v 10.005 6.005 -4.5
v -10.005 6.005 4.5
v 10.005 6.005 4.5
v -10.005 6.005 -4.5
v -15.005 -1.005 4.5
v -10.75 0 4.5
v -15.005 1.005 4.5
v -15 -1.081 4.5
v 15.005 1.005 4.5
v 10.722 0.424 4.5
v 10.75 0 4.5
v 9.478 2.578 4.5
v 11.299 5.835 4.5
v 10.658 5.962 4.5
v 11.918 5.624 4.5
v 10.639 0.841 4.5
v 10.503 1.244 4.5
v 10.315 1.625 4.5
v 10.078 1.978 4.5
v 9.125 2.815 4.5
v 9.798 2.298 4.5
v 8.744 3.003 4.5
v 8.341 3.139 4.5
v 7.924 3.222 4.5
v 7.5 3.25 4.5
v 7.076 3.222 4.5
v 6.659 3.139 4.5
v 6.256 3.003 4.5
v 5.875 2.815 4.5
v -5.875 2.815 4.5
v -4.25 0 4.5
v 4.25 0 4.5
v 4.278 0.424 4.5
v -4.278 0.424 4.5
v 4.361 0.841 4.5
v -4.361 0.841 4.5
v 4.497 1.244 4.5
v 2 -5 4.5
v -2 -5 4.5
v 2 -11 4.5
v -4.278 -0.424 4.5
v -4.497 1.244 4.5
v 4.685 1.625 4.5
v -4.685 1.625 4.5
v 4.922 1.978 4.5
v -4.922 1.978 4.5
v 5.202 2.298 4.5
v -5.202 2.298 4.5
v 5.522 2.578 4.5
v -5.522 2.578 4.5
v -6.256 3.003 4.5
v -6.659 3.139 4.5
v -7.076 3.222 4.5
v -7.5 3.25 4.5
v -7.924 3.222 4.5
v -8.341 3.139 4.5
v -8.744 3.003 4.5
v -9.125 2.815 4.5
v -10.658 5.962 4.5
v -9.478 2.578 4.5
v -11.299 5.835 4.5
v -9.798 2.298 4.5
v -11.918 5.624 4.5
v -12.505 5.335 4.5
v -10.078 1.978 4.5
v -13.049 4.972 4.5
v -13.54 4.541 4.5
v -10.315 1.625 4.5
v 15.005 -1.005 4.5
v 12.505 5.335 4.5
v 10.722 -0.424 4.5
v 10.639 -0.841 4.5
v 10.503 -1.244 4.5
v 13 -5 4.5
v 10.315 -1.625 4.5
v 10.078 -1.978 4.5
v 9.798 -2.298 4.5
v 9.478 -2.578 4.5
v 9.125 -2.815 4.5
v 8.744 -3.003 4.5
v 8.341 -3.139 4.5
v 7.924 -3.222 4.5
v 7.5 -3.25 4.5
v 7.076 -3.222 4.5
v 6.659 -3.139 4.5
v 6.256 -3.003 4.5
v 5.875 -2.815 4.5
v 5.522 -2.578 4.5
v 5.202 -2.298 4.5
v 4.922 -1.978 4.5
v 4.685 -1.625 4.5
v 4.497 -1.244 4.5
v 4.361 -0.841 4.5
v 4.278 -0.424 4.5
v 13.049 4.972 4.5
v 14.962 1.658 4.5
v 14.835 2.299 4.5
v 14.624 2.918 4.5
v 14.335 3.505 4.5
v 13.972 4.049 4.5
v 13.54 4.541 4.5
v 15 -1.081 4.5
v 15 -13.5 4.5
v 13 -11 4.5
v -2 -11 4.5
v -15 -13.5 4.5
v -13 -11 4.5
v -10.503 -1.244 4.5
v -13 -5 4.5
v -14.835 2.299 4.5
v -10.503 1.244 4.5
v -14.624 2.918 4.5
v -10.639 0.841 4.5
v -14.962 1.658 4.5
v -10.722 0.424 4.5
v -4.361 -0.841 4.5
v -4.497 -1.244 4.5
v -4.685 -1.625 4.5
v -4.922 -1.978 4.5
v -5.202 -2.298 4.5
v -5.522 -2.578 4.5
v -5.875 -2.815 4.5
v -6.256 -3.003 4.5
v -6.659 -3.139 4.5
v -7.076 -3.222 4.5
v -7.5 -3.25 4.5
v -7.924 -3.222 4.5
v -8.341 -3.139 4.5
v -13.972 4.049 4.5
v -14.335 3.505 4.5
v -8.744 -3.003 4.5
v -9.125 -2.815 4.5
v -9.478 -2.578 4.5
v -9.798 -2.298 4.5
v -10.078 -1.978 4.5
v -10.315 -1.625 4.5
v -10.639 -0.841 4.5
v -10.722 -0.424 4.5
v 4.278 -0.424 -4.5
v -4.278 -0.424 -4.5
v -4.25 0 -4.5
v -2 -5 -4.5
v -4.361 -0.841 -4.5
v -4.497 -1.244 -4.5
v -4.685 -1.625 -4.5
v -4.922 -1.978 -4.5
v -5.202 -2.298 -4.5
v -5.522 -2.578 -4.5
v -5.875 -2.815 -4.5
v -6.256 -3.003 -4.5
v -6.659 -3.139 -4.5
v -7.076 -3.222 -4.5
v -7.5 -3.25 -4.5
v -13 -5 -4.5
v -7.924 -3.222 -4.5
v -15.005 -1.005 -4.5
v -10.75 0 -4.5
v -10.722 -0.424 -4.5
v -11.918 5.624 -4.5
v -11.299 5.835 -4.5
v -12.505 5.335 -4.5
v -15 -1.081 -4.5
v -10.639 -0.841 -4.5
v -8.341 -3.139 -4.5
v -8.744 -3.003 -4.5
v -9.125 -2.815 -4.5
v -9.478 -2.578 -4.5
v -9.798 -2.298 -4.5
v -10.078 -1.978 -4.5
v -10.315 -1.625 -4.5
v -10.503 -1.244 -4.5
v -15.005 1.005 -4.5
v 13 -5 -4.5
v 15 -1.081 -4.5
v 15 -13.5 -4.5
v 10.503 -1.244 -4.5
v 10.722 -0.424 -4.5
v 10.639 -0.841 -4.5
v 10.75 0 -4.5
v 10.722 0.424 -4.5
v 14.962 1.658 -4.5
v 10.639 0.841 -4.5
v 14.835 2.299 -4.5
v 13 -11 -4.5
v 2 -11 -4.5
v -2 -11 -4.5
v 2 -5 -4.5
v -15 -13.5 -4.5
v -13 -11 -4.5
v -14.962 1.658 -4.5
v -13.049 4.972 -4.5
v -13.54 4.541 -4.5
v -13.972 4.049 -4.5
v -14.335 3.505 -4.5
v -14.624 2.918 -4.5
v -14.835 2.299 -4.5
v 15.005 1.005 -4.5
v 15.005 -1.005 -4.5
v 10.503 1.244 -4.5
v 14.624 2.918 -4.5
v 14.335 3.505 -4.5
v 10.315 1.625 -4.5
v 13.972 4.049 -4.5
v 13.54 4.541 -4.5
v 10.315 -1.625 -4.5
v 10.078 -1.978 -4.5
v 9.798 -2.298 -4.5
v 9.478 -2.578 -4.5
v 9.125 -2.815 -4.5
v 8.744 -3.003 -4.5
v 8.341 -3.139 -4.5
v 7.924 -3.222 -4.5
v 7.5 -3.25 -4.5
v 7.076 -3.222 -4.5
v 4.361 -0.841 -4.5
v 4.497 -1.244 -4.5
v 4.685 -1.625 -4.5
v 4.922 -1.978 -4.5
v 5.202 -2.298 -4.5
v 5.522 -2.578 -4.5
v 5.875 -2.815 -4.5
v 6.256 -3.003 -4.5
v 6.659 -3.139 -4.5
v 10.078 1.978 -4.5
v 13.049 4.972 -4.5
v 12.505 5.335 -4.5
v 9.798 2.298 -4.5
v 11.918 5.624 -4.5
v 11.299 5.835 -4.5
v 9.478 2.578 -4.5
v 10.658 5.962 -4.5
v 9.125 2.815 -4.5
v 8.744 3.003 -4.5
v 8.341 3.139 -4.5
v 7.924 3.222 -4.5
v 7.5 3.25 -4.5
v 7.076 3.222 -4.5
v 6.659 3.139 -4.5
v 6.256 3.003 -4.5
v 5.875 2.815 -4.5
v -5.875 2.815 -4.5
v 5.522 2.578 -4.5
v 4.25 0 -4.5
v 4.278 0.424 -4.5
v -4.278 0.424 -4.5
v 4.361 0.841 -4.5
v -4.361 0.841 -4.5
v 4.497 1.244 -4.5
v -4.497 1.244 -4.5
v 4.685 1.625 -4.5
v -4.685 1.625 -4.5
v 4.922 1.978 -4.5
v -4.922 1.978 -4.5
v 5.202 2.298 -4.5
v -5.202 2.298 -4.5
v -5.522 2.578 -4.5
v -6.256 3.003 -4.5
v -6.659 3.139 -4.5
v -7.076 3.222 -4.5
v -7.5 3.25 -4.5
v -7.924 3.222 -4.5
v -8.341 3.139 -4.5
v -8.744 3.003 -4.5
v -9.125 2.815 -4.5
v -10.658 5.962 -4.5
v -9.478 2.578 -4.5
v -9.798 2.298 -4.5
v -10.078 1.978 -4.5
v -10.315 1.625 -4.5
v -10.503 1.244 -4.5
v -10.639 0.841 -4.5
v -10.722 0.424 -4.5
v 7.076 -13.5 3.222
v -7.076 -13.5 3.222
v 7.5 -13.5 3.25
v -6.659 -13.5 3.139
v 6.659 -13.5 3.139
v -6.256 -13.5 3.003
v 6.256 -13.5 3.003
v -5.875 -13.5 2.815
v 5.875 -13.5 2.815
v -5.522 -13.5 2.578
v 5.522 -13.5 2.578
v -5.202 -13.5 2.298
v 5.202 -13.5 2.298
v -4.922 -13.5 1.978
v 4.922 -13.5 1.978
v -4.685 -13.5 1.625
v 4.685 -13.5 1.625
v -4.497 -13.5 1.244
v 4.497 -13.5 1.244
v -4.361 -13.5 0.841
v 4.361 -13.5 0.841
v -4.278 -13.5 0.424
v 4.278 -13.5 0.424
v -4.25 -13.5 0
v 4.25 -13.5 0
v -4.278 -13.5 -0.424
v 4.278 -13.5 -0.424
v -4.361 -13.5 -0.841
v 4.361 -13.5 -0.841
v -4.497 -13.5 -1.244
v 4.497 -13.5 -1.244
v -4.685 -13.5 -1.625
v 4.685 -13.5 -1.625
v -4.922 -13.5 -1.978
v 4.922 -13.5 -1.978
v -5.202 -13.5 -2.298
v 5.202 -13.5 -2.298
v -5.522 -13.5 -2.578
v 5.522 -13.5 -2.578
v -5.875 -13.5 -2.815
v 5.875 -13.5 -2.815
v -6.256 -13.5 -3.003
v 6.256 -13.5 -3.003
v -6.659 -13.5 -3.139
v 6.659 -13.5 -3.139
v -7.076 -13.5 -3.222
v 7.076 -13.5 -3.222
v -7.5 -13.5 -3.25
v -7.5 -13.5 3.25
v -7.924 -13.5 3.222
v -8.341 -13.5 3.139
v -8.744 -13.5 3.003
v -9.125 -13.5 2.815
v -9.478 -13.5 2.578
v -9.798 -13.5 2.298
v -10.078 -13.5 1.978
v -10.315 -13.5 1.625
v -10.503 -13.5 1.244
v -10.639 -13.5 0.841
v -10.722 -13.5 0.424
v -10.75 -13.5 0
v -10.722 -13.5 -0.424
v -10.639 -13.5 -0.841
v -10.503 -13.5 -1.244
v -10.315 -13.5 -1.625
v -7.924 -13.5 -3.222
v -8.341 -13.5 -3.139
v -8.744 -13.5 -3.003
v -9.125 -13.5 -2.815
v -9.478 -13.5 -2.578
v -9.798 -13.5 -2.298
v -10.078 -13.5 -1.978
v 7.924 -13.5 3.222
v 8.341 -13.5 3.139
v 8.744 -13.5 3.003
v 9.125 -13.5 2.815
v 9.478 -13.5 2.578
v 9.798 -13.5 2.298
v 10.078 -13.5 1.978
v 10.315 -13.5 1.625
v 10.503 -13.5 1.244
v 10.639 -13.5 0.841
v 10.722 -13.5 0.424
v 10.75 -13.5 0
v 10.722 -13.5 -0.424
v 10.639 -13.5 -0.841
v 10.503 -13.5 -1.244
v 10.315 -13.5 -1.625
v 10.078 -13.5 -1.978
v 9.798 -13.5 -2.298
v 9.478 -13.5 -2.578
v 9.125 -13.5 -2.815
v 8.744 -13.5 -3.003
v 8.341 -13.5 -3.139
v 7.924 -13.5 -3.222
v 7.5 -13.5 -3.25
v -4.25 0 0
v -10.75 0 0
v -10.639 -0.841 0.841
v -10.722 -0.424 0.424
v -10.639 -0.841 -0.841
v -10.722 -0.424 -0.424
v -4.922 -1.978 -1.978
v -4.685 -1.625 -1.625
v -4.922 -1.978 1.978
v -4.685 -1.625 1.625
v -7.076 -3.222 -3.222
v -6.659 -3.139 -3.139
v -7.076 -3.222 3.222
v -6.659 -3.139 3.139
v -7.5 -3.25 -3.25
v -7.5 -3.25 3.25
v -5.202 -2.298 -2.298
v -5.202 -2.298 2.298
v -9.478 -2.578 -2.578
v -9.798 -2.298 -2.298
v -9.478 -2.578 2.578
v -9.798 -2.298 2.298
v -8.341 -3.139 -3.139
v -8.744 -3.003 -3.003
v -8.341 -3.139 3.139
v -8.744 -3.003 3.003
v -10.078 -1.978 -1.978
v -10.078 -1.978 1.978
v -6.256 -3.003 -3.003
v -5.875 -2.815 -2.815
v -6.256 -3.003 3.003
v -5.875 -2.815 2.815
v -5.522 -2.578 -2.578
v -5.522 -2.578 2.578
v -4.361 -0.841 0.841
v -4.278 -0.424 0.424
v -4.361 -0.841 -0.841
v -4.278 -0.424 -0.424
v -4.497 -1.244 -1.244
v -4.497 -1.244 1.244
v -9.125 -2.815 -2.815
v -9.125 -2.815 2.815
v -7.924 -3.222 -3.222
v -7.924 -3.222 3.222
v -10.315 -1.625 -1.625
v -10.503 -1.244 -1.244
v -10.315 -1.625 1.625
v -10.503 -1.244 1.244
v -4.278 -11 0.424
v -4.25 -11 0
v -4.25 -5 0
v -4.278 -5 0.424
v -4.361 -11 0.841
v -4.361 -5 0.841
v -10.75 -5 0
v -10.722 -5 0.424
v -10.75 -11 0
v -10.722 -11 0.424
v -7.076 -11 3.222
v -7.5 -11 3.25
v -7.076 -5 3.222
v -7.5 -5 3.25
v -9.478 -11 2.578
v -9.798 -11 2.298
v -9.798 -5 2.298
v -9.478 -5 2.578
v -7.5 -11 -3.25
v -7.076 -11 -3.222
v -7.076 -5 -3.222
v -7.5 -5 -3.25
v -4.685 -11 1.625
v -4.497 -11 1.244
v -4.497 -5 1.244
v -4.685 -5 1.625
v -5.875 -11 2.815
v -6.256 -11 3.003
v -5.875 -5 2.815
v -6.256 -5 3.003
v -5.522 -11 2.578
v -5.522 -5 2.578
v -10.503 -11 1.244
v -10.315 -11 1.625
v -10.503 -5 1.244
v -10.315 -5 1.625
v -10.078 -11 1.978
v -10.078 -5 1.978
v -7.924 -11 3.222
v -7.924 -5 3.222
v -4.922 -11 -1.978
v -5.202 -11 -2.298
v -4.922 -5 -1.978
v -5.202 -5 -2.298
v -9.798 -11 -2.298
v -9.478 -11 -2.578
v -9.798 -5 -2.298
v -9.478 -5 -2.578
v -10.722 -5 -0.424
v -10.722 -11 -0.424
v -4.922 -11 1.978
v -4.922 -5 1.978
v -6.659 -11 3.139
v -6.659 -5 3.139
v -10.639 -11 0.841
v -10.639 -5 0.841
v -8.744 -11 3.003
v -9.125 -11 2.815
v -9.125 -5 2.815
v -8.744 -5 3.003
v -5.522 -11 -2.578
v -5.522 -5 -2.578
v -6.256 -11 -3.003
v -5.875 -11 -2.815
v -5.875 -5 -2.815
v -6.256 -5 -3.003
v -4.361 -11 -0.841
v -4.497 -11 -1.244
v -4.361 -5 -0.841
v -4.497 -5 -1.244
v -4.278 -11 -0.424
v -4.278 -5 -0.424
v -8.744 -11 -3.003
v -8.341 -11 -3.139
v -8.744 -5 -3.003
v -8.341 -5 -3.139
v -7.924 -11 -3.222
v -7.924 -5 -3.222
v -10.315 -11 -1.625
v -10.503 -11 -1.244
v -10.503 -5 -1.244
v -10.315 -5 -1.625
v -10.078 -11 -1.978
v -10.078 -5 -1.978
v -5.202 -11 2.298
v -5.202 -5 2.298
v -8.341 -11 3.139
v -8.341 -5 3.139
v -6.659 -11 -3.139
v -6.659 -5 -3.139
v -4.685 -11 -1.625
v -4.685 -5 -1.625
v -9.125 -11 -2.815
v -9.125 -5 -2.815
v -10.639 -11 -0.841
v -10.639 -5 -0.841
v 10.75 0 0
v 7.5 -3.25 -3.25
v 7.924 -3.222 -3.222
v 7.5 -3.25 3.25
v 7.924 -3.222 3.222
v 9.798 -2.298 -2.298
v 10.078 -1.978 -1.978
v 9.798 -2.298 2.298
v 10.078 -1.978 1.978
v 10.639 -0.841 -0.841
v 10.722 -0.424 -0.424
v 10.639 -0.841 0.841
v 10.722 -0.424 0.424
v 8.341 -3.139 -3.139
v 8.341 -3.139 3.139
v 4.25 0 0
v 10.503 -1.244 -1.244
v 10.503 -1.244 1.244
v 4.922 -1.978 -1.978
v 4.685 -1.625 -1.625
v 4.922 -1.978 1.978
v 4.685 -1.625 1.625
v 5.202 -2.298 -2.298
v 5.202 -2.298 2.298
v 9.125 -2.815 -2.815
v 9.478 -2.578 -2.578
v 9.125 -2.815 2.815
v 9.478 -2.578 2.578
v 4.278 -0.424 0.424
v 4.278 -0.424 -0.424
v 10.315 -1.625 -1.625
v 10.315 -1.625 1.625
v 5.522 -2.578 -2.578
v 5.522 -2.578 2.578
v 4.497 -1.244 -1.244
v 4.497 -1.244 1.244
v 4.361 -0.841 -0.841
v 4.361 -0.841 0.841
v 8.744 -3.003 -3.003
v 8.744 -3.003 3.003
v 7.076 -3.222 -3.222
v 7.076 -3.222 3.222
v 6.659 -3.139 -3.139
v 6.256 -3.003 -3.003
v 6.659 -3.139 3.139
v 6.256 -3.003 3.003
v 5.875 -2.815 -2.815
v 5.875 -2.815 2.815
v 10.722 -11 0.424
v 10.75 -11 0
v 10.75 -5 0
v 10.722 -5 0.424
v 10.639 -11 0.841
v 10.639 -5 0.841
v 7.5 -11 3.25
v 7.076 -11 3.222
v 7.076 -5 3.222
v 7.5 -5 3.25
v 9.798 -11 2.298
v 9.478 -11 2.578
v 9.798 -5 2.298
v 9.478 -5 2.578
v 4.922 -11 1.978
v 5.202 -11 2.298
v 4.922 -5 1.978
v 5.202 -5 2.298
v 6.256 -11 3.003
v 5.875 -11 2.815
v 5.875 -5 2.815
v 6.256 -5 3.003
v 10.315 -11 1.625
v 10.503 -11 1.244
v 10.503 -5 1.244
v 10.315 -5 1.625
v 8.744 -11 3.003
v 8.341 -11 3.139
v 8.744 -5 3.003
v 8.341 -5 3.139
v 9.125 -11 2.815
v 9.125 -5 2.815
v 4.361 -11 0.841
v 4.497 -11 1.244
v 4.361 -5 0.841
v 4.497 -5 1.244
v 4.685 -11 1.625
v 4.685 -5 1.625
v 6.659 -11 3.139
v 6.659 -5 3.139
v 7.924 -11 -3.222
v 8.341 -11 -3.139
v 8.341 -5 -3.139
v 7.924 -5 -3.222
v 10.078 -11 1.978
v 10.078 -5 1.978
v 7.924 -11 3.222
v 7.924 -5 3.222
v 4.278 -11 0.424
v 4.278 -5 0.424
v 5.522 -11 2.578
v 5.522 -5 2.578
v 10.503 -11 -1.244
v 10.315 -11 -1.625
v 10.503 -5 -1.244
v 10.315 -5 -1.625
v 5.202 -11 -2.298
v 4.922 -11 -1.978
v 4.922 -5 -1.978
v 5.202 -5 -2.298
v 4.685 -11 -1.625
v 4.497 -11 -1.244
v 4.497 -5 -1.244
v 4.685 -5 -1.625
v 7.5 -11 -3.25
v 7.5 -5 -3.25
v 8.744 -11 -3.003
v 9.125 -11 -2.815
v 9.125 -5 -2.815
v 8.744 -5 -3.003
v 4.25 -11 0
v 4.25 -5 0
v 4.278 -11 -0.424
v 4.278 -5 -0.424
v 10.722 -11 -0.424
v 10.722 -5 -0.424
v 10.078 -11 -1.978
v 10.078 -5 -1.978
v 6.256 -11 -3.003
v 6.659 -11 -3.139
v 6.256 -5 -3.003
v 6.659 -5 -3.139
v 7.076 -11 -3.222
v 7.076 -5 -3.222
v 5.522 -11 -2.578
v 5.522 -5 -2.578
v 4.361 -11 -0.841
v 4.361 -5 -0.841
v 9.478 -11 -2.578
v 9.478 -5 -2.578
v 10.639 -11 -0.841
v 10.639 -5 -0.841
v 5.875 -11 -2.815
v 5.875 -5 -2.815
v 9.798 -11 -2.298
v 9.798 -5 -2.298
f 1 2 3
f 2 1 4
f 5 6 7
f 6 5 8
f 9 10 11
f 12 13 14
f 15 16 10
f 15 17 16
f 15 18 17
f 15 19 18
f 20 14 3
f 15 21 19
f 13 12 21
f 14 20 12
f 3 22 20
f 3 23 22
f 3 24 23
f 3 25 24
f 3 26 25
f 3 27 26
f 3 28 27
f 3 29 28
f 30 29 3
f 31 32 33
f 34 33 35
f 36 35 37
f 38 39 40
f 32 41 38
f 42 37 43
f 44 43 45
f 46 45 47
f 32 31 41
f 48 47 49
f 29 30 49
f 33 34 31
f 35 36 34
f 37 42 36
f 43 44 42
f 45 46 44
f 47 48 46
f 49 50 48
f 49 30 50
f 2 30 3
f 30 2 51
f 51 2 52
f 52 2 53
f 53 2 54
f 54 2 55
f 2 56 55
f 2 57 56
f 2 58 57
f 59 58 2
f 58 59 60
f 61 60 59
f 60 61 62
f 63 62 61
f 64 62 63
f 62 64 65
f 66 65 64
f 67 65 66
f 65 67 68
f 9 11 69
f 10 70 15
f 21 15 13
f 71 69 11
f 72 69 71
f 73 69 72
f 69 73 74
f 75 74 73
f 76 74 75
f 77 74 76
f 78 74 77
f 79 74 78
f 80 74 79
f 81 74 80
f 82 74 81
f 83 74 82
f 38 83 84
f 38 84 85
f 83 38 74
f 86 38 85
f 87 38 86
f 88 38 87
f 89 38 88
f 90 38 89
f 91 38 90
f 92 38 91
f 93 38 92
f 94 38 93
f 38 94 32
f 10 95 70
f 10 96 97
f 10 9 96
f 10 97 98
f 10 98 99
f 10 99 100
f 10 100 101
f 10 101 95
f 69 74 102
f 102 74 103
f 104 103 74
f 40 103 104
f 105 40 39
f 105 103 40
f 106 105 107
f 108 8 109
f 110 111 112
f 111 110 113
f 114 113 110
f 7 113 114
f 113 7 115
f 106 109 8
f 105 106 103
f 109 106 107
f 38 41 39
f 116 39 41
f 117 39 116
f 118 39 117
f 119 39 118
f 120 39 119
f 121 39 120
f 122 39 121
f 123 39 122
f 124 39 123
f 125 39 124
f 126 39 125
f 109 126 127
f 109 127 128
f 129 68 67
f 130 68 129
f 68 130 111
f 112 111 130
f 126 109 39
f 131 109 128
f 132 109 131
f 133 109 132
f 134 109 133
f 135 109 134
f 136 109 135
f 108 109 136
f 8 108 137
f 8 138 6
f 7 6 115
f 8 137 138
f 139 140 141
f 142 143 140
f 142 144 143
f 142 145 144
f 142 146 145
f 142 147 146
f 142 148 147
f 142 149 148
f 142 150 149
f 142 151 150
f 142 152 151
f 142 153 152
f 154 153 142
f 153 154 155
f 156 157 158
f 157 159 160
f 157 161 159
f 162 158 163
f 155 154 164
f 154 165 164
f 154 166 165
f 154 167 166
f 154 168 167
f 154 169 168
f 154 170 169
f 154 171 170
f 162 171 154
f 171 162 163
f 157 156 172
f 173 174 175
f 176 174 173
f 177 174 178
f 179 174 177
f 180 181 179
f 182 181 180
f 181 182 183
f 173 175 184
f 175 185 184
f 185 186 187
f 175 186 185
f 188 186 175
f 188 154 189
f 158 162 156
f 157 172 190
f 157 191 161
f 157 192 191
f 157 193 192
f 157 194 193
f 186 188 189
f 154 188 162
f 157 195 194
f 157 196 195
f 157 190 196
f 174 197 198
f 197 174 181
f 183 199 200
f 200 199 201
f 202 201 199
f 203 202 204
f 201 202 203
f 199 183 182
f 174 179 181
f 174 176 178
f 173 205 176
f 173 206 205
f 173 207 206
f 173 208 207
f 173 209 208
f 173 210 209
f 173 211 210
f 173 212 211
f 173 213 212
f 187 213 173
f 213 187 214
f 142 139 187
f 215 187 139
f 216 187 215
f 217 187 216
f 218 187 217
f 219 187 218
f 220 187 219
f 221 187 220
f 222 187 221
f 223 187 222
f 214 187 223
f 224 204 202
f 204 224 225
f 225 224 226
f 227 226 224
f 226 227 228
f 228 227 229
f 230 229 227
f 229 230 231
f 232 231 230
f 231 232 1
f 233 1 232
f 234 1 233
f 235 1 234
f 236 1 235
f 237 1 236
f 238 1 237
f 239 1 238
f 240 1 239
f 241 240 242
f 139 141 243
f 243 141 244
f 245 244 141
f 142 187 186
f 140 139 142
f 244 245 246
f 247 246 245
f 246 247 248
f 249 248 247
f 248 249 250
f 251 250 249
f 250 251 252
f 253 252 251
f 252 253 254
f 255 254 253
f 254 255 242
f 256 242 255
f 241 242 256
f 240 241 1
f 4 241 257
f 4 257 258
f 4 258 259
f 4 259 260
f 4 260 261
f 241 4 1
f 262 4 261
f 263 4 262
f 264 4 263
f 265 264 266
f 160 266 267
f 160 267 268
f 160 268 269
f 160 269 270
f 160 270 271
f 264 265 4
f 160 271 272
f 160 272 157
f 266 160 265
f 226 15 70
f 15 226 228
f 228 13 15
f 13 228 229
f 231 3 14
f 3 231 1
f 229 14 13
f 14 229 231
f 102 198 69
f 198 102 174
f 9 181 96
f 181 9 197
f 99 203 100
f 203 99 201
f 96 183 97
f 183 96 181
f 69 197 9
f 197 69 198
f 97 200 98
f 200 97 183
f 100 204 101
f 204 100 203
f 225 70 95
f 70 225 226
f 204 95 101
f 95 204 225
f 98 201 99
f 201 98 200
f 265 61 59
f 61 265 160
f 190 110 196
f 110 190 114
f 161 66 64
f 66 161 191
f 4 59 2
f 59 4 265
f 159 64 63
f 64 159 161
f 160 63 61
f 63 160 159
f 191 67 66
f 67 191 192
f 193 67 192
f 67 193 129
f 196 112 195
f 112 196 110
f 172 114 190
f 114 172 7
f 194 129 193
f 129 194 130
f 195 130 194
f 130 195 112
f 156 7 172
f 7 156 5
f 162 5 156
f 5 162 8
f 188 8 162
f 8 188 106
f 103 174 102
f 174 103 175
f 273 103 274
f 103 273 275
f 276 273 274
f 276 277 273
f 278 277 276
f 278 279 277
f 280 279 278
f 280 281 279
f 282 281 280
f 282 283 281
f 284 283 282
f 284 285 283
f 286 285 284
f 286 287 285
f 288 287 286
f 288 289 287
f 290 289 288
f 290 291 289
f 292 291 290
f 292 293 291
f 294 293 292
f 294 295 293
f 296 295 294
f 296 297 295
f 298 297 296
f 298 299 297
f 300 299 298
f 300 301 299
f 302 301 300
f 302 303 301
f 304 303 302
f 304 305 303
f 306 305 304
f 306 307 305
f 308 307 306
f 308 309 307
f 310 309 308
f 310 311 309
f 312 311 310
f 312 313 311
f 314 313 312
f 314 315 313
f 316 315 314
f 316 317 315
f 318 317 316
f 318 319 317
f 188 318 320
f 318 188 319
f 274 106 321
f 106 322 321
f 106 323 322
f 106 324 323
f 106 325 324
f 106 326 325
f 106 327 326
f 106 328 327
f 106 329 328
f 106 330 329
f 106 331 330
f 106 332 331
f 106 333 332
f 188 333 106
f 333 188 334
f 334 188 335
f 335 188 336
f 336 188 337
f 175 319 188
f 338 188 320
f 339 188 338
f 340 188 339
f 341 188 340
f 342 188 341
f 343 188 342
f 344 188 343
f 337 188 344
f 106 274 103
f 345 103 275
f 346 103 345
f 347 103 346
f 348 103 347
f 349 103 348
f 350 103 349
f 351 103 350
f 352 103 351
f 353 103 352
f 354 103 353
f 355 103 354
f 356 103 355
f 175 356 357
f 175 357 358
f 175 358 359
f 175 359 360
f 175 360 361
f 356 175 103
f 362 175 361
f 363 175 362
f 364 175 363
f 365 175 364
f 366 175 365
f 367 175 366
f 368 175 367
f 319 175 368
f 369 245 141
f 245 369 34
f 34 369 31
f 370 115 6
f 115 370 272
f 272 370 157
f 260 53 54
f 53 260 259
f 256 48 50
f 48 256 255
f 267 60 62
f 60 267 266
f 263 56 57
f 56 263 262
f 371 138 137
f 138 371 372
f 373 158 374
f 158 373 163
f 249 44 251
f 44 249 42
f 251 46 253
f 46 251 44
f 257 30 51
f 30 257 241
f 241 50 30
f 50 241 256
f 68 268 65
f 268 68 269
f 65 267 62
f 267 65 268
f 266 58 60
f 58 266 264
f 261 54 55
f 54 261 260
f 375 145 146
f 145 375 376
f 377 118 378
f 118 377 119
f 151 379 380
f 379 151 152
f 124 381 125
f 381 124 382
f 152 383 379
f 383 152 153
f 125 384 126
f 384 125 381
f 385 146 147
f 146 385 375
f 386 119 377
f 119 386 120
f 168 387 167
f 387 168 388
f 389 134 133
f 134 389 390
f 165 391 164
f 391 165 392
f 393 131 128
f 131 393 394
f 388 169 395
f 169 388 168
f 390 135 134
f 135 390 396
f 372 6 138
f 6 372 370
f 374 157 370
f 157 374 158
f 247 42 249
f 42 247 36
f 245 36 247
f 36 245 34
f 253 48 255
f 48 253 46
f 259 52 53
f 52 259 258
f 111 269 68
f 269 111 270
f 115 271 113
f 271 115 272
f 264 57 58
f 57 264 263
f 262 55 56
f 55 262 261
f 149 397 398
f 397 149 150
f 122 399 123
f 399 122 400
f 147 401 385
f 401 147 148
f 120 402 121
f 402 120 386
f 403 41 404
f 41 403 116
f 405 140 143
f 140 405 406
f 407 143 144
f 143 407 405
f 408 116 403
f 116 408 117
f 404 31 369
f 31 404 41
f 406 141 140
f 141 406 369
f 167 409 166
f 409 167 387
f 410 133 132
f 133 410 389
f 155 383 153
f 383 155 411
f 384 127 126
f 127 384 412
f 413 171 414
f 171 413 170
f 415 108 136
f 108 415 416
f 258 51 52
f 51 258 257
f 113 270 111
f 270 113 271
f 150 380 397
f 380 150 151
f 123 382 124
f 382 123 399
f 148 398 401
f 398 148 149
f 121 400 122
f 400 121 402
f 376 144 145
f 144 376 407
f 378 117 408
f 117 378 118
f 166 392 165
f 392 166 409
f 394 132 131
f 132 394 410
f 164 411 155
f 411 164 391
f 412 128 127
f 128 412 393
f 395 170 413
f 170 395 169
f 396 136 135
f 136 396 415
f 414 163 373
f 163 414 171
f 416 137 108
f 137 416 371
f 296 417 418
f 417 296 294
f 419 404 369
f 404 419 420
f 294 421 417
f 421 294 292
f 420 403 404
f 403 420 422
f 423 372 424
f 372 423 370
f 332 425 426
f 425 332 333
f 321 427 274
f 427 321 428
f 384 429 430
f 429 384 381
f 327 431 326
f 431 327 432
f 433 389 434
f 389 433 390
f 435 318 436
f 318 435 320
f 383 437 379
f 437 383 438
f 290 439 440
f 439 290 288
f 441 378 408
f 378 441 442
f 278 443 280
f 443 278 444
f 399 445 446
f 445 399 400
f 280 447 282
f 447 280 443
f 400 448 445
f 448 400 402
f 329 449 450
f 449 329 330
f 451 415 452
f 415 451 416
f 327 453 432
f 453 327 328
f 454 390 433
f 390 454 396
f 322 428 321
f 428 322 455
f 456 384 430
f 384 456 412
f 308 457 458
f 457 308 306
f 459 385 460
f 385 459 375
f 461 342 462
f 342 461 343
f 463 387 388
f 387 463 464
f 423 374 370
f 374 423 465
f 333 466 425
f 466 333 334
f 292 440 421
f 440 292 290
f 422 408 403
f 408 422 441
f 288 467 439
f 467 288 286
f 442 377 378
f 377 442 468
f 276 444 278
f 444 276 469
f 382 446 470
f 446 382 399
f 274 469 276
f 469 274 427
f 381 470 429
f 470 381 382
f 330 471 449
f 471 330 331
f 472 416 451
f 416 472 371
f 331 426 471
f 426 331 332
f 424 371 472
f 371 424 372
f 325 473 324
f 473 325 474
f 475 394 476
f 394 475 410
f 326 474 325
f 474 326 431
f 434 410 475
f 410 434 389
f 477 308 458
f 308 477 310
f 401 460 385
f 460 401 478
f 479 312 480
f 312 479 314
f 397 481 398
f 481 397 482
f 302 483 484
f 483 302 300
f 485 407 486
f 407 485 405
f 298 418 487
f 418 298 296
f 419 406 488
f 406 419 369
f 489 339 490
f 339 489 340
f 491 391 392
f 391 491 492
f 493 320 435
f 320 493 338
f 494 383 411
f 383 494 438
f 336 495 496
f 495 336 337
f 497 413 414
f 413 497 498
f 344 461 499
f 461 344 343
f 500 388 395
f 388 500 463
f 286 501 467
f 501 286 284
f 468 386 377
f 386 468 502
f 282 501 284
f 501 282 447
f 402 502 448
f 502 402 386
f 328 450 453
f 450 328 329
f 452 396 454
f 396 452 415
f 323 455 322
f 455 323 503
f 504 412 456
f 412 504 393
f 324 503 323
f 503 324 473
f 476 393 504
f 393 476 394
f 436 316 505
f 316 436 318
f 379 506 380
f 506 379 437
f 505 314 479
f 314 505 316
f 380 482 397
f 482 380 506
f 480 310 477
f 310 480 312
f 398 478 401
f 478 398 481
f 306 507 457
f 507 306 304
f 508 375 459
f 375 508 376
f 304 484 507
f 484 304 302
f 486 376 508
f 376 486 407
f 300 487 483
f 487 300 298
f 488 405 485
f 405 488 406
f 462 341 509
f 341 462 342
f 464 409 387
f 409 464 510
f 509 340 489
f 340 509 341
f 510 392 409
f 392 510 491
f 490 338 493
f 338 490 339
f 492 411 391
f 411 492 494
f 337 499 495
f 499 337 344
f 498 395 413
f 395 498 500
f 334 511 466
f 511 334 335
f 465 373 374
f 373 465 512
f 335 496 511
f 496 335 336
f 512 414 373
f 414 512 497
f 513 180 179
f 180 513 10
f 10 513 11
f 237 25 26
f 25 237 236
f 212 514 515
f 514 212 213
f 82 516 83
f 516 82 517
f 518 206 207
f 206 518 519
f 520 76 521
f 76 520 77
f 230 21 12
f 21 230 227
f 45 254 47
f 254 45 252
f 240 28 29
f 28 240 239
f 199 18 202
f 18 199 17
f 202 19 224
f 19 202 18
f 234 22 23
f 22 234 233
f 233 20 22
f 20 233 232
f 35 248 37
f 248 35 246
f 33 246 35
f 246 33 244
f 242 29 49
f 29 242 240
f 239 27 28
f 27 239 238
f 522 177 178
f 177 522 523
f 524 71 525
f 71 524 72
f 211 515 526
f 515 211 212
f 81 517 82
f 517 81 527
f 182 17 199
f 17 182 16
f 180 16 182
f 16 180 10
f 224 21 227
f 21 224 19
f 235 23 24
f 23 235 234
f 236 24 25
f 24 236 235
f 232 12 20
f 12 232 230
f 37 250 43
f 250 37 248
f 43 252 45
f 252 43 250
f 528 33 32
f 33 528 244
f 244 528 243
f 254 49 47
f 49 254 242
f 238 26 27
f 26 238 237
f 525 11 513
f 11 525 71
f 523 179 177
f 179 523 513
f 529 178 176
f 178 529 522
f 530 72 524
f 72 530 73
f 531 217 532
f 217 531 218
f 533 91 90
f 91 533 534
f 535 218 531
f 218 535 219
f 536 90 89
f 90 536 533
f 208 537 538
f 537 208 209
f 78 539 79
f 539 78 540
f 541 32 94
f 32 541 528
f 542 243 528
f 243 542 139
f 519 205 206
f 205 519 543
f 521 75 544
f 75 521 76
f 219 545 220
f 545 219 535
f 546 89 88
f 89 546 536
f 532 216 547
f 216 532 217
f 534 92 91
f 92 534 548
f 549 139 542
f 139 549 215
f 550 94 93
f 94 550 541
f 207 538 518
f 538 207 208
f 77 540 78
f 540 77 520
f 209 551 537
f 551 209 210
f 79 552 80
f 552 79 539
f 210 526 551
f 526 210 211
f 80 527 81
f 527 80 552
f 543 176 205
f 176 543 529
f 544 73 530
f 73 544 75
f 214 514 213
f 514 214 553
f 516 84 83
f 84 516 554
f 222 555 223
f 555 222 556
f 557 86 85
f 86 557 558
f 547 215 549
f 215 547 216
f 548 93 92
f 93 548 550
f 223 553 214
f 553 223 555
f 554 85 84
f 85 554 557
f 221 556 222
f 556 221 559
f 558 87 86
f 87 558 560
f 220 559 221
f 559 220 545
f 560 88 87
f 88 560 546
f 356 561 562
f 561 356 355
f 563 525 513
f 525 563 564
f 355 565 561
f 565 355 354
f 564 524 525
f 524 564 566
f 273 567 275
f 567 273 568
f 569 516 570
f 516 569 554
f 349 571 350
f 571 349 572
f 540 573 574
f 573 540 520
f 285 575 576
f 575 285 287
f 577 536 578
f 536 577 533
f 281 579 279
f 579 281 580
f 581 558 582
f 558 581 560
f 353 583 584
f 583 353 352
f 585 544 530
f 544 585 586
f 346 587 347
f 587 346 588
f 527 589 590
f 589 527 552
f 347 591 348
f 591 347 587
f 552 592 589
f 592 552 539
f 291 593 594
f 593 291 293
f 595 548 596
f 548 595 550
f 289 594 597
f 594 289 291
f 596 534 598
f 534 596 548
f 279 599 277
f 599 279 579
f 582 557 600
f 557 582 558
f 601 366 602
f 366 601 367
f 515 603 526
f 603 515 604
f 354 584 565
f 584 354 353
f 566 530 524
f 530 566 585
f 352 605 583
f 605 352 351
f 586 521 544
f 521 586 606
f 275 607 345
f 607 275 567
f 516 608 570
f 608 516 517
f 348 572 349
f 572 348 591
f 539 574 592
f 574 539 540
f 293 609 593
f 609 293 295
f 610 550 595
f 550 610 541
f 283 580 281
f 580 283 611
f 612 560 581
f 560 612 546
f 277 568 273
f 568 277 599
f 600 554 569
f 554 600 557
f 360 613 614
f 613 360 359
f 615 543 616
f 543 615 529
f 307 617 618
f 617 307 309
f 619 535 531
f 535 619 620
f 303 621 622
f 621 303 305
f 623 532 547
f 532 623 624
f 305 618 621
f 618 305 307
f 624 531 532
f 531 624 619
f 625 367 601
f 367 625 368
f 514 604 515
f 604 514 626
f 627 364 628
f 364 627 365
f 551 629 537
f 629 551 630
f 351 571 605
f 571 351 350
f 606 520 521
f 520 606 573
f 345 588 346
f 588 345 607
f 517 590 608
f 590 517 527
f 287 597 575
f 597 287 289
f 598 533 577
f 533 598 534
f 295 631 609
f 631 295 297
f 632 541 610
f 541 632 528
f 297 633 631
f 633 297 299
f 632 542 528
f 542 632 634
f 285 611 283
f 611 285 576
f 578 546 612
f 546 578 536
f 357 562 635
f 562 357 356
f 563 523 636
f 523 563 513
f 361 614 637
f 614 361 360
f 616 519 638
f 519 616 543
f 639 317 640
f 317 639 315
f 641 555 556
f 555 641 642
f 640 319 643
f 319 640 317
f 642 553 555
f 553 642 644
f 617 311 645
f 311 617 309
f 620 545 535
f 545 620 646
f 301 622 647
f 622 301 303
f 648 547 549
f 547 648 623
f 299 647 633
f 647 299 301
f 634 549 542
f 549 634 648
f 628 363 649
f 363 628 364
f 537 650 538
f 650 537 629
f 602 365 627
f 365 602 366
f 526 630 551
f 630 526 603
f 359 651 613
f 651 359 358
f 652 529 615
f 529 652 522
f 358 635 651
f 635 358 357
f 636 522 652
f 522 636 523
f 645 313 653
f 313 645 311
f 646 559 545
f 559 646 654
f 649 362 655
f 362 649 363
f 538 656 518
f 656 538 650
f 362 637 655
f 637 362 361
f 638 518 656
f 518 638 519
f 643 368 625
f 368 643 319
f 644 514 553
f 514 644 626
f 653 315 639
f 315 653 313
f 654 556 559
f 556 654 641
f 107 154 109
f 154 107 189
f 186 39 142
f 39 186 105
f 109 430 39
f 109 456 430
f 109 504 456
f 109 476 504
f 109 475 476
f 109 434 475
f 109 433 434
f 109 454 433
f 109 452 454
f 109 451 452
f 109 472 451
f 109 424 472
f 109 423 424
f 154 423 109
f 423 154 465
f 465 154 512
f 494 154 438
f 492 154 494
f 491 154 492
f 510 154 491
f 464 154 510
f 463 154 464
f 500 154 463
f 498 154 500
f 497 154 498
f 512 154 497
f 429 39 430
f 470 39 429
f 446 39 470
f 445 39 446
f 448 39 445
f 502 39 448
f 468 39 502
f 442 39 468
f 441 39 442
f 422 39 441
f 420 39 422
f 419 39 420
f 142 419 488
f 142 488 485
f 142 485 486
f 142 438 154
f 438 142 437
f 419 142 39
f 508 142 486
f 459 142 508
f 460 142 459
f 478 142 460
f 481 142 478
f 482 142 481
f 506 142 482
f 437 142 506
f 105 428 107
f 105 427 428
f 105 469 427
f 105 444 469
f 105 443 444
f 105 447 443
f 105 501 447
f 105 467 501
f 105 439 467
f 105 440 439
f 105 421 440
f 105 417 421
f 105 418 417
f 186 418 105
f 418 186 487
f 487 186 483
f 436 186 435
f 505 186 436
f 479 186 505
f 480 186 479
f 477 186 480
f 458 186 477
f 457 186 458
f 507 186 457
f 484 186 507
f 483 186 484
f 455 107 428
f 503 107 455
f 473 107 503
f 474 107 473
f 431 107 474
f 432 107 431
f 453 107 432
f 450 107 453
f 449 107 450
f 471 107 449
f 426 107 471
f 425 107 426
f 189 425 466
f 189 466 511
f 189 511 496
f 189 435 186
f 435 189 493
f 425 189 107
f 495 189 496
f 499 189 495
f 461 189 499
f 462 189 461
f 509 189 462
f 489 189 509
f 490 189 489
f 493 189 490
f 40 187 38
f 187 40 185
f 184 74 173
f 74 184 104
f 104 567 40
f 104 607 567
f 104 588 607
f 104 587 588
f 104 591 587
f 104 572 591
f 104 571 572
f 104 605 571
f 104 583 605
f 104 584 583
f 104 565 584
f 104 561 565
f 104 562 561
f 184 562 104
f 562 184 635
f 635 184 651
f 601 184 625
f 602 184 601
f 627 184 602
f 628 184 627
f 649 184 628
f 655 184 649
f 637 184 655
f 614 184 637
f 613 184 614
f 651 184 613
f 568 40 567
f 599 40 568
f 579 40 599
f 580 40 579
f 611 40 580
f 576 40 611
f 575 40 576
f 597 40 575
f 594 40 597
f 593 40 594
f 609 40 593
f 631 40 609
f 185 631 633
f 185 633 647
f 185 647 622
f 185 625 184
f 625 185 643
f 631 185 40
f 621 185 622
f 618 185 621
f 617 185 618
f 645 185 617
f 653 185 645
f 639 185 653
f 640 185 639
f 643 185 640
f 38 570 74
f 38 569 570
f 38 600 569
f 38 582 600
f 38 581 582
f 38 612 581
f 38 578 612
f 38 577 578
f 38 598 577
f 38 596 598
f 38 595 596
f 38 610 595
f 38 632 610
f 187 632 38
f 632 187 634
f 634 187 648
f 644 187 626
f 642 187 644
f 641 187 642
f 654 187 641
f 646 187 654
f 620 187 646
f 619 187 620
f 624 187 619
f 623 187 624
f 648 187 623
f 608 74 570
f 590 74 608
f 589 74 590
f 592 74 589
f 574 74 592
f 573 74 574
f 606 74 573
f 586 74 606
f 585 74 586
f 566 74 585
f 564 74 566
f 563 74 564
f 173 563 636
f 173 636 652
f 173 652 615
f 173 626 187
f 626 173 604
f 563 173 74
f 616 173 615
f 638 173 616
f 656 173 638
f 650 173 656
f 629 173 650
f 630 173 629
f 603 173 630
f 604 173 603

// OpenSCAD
// Generated by SolidPython 1.1.3 on 2022-09-16 14:19:52
$fn = 48;


difference() {
	union() {
		color(alpha = 1.0000000000, c = "Gold") {
			translate(v = [0, 0, 4.5000000000]) {
				rotate(a = [0, 0, 0]) {
					translate(v = [0, 0, -9]) {
						linear_extrude(height = 9) {
							offset(r = 5) {
								square(center = true, size = [17.0100000000, 2.0100000000]);
							}
						}
					}
				}
			}
		}
		color(alpha = 1.0000000000, c = "Gold") {
			translate(v = [1.5000000000, 0, 4.5000000000]) {
				rotate(a = [0, 0, 0]) {
					translate(v = [0, 0, -9]) {
						linear_extrude(height = 9) {
							offset(r = 5) {
								square(center = true, size = [17.0100000000, 2.0100000000]);
							}
						}
					}
				}
			}
		}
		color(alpha = 1.0000000000, c = "Gold") {
			translate(v = [-1.5000000000, 0, 4.5000000000]) {
				rotate(a = [0, 0, 0]) {
					translate(v = [0, 0, -9]) {
						linear_extrude(height = 9) {
							offset(r = 5) {
								square(center = true, size = [17.0100000000, 2.0100000000]);
							}
						}
					}
				}
			}
		}
		color(alpha = 1.0000000000, c = "Gold") {
			translate(v = [0, -6.7500000000, 4.5000000000]) {
				rotate(a = [0, 0, 0]) {
					translate(v = [0, 0, -4.5000000000]) {
						cube(center = true, size = [30, 13.5000000000, 9]);
					}
				}
			}
		}
	}
	union() {
		color(alpha = 1.0000000000, c = "Gold") {
			translate(v = [-7.5000000000, 0.0000000000, 0]) {
				rotate(a = [0, 0, 0]) {
					translate(v = [0, 0, -250]) {
						cylinder(h = 500, r = 3.2500000000);
					}
				}
			}
		}
		color(alpha = 1.0000000000, c = "Gold") {
			translate(v = [-7.5000000000, 0.0000000000, 0]) {
				rotate(a = [90, 0, 0]) {
					cylinder(h = 13.5000000000, r = 3.2500000000);
				}
			}
		}
		color(alpha = 1.0000000000, c = "Gold") {
			translate(v = [7.5000000000, 0.0000000000, 0]) {
				rotate(a = [0, 0, 0]) {
					translate(v = [0, 0, -250]) {
						cylinder(h = 500, r = 3.2500000000);
					}
				}
			}
		}
		color(alpha = 1.0000000000, c = "Gold") {
			translate(v = [7.5000000000, 0.0000000000, 0]) {
				rotate(a = [90, 0, 0]) {
					cylinder(h = 13.5000000000, r = 3.2500000000);
				}
			}
		}
		color(alpha = 1.0000000000, c = "Gold") {
			translate(v = [-7.5000000000, -8, 4.5000000000]) {
				rotate(a = [0, 0, 0]) {
					translate(v = [0, 0, -4.5000000000]) {
						cube(center = true, size = [11, 6, 9]);
					}
				}
			}
		}
		color(alpha = 1.0000000000, c = "Gold") {
			translate(v = [7.5000000000, -8, 4.5000000000]) {
				rotate(a = [0, 0, 0]) {
					translate(v = [0, 0, -4.5000000000]) {
						cube(center = true, size = [11, 6, 9]);
					}
				}
			}
		}
	}
}
/***********************************************
*********      SolidPython code:      **********
************************************************
 
import subprocess

from solid.objects import *
from solid import scad_render_to_file, scad_render

import math

import os

##################################################################################################################################################
##################################################################################################################################################
##################################################################################################################################################
##################################################################################################################################################
######  DIMENSION STUFF
##################################################################################################################################################
##################################################################################################################################################
##################################################################################################################################################
##################################################################################################################################################


mode = "3DPR"
#mode = "LAZE"
#mode = "TURE"
#mode = ""


######  Countersunk
countersunkM = []
WIDTH = 0
DEPTH = 1
countersunkM1width = 0; countersunkM1depth = 0; countersunkM2width = 0; countersunkM2depth = 0
countersunkM3width = 0
countersunkM3depth = 0
countersunkM4width = 0
countersunkM4depth = 0
countersunkM5width = 0
countersunkM5depth = 0
countersunkM6width = 0
countersunkM6depth = 0

######  Holes
holeM = []
holeM1 = 0
holeM2 = 0
holeM3 = 0
holeM4 = 0
holeM5 = 0
holeM6 = 0

######  Nuts
nuts = {}
nutM = []
NUTWIDTH = 0
NUTDEPTH = 1
nutM1width = 0
nutM1depth = 0
nutM2width = 0
nutM2depth = 0
nutM3width = 0
nutM3depth = 0
nutM4width = 0
nutM4depth = 0
nutM5width = 0
nutM5depth = 0
nutM6width = 0
nutM6depth = 0

###### Bearings
bearings = {}


######  OOEB
ooebPinWidth = 0
ooebPinWidthWide = 0


######  Colors
colDefault = "Gold"

colOOEBbase = colDefault

colLEDRed = "red"
colWire = "gray"
    ######  Resistor
colRes = list()
colResistor = "beige"

colResBlack = "black"
colRes.append(colResBlack)
colResBrown = "brown"
colRes.append(colResBrown)
colResRed = "red"
colRes.append(colResRed)
colResOrange = "orange"
colRes.append(colResOrange)
colResYellow = "yellow"
colRes.append(colResYellow)
colResGreen = "green"
colRes.append(colResGreen)
colResBlue = "blue"
colRes.append(colResBlue)
colResPurple = "purple"
colRes.append(colResPurple)
colResGray = "gray"
colRes.append(colResGray)
colResWhite = "white"
colRes.append(colResWhite)





def changeMode(m="3DPR"):
    #print("####################################################      CHANGING MODES TO: " + m)
    global mode
    mode = m
    ######  Bearings
    bearings["606"] = { 
                        "BIG"           : 17/2,
                        "LITTLE"        : 14/2,
                        "INSIDE"        : 6/2,
                        "INSIDEBIG"     : 6/2 + (3/2),
                        "OUTSIDE"       : 17/2,
                        "OUTSIDELITTLE" : 15/2,
                        "INSIDELITTLE"  : (6+1.5)/2,
                        "DEPTH"         : 6,
                        "BPHOLES"       : [9.445]
                        }
    bearings["6810"] = { 
                        "BIG"           : 65/2,
                        "LITTLE"        : 65/2-(3/2),
                        "INSIDE"        : 50/2,
                        "INSIDEBIG"     : (50/2+(3/2)),
                        "OUTSIDE"       : 65/2,
                        "OUTSIDELITTLE" : 65/2-(3/2),
                        "INSIDELITTLE"  : 50/2,
                        "DEPTH"         : 6.5,
                        "BPHOLES"       : [25,9.445]            
                        }

    if mode == "3DPR":
        bearings["606"]["BIG"] =      17.5/2
        bearings["606"]["LITTLE"] =   14.5/2
        bearings["606"]["INSIDE"] =   5.8/2
        bearings["606"]["OUTSIDE"] =  (17+0.25)/2
        bearings["606"]["DEPTH"] =    6.5
                            
        bearings["6810"]["INSIDE"] =       (50/2-(1/2))
        bearings["6810"]["OUTSIDE"] =      65/2+(1/2)
        bearings["6810"]["INSIDELITTLE"] = 50/2-(1/2)
        bearings["6810"]["DEPTH"] =        6.5           
                            
    
    ######  Countersunk
    global countersunkM, countersunkM1width, countersunkM1depth, countersunkM2width, countersunkM2depth, countersunkM3width, countersunkM3depth, countersunkM4width, countersunkM4depth, countersunkM5width, countersunkM5depth, countersunkM6width, countersunkM6depth
    countersunkM = []
    countersunkM.append([0,0])
    countersunkM1width = 0 if mode== "3DPR" else 0
    countersunkM1depth = 0 if mode== "3DPR" else 0
    countersunkM.append([countersunkM1width,countersunkM1depth])
    countersunkM2width = 0 if mode== "3DPR" else 0
    countersunkM2depth = 0 if mode== "3DPR" else 0
    countersunkM.append([countersunkM2width,countersunkM2depth])
    countersunkM3width = 5.5/2+0.6 if mode== "3DPR" else 5.5/2
    countersunkM3depth = 1.7 if mode== "3DPR" else 1.7
    countersunkM.append([countersunkM3width,countersunkM3depth])
    countersunkM4width = 0 if mode== "3DPR" else 0
    countersunkM4depth = 0 if mode== "3DPR" else 0
    countersunkM.append([countersunkM4width,countersunkM4depth])
    countersunkM5width = 0 if mode== "3DPR" else 0
    countersunkM5depth = 0 if mode== "3DPR" else 0
    countersunkM.append([countersunkM5width,countersunkM5depth])
    countersunkM6width = 0 if mode== "3DPR" else 0
    countersunkM6depth = 0 if mode== "3DPR" else 0
    countersunkM.append([countersunkM6width,countersunkM6depth])
    ######  Holes
    global holeM, holeM1, holeM2, holeM3, holeM4, holeM5, holeM6, holeM7, holeM8
    holeM = []
    holeM1 = 1.2/2 if mode== "3DPR" else 1/2
    holeM2 = 2.3/2 if mode== "3DPR" else 2/2
    holeM3 = 3.4/2 if mode== "3DPR" else 3/2
    holeM4 = 4.4/2 if mode== "3DPR" else 4/2
    holeM5 = 5.4/2 if mode== "3DPR" else 5/2
    holeM6 = 6.5/2 if mode== "3DPR" else 6/2
    holeM7 = 7.5/2 if mode== "3DPR" else 7/2
    holeM8 = 8.6/2 if mode== "3DPR" else 8/2
    holeM.append(0)
    holeM.append(holeM1)
    holeM.append(holeM2)
    holeM.append(holeM3)
    holeM.append(holeM4)
    holeM.append(holeM5)
    holeM.append(holeM6)
    holeM.append(holeM7)
    holeM.append(holeM8)
    #####  Nuts
    nuts["M6"] = {
                    "WIDTH" : 10,
                    "MAJORWIDTH" : (10 * 1.154),
                    "DEPTH" : 5
                    }
    if mode == "3DPR":
        nuts["M6"]["WIDTH"] = 11                 
        nuts["M6"]["MAJORWIDTH"] = (11 * 1.154)
        nuts["M6"]["DEPTH"] = 6

    global nutM, nutM1width, nutM1depth, nutM2width, nutM2depth, nutM3width, nutM3depth, nutM4width, nutM4depth, nutM5width, nutM5depth, nutM6width, nutM6depth
    nutM = []
    nutM.append([0,0]) 
    #M1 Nut
    nutM1width = 0
    nutM1depth = 0
    nutM.append([nutM1width,nutM1depth])    
    #M2 Nut
    nutM2width = 0
    nutM2depth = 0
    nutM.append([nutM2width,nutM2depth])    
    #M3 Nut
    #nutM3width = 6.05 if mode== "3DPR" else 5.5
    nutM3width = 6.05 * 1.154 if mode== "3DPR" else 5.5 * 1.154
    nutM3depth = 2.5 if mode== "3DPR" else 2.5
    nutM.append([nutM3width,nutM3depth])    
    #M4 Nut
    nutM4width = 0
    nutM4depth = 0
    nutM.append([nutM4width,nutM4depth])    
    #M5 Nut
    nutM5width = 0
    nutM5depth = 0
    nutM.append([nutM5width,nutM5depth])    
    #M6 Nut
    nutM6width = 11 if mode== "3DPR" else 10
    nutM6depth = 5 if mode== "3DPR" else 5
    nutM.append([nutM6width,nutM6depth])    

    ######  OOEB
    global ooebPinWidth,  ooebPinWidthWide

    ooebPinWidth = 0.6
    if(mode=="3DPR" or mode=="LAZE"):
        ooebPinWidth = 0.6 + 0.6
    ooebPinWidthWide = 1.2
    if(mode=="3DPR" or mode=="LAZE"):
        ooebPinWidthWide = 1.2 + 0.6


changeMode()


""""    
holeM12D = s=="3DPR" ? 1.4/2 : 1.2/2;
holeM16D = s=="3DPR" ? 1.8/2 : 1.6/2;
holeM2 = s=="3DPR" ? 2.3/2 : 2/2;
holeM25D = s=="3DPR" ? 2.8/2 : 2.5/2;
holeM27D = s=="3DPR" ? 3.1/2 : 2.7/2;    
holeM3 = s=="3DPR" ? 3.4/2 : 3/2;
holeM35D = s=="3DPR" ? 3.9/2 : 35/2;
holeM4 = s=="3DPR" ? 4.4/2 : 4/2;
holeM5 = s=="3DPR" ? 5.4/2 : 5/2;
holeM6 = s=="3DPR" ? 6.5/2 : 6/2;
holeM6Minus = s=="3DPR" ? 5.8/2 : 5.9/2;
holeM7 = s=="3DPR" ? 7.5/2 : 7/2;
holeM8 = s=="3DPR" ? 8.6/2 : 8/2;
holeM9 = s=="3DPR" ? 9.6/2 : 9/2;
holeM10 = s=="3DPR" ? 10.6/2 : 10/2;
holeM11 = s=="3DPR" ? 11.6/2 : 11/2;
holeM12 = s=="3DPR" ? 12.6/2 : 12/2;
holeM13 = s=="3DPR" ? 13.6/2 : 13/2;
holeM14 = s=="3DPR" ? 14.6/2 : 14/2;
holeM15 = s=="3DPR" ? 15.6/2 : 15/2;
holeM16 = s=="3DPR" ? 16.6/2 : 16/2;
holeM17 = s=="3DPR" ? 17.6/2 : 17/2;
holeM18 = s=="3DPR" ? 18.6/2 : 18/2;
holeM19 = s=="3DPR" ? 19.6/2 : 19/2;
holeM20 = s=="3DPR" ? 20.6/2 : 20/2;
"""

##################################################################################################################################################
##################################################################################################################################################
##################################################################################################################################################
##################################################################################################################################################
######  REGULAR STUFF
##################################################################################################################################################
##################################################################################################################################################
##################################################################################################################################################
##################################################################################################################################################


def setMode(mode="3DPR"):
    changeMode(mode)

def getMode():
    return mode



def saveToScad(fileName, parts):
    dir =  os.path.dirname(os.path.abspath(fileName))
    Path(dir).mkdir(parents=True, exist_ok=True)
    file_out = scad_render_to_file(parts, fileName, file_header=f'$fn = 48;')


def saveToDxf(fileIn, fileOut=""):
    if fileOut == "":
        fileOut = fileIn.replace(".scad",".dxf")
    saveToFile(fileIn, fileOut)
    
def saveToPng(fileIn, fileOut="",extra="--render"):
    if fileOut == "":
        fileOut = fileIn.replace(".scad",".png")
    saveToFile(fileIn, fileOut)

def saveToStl(fileIn, fileOut=""):
    if fileOut == "":
        fileOut = fileIn.replace(".scad",".stl")
    saveToFile(fileIn, fileOut)
    
def saveToSvg(fileIn, fileOut=""):
    if fileOut == "":
        fileOut = fileIn.replace(".scad",".svg")
    saveToFile(fileIn, fileOut)

def saveToFile(fileIn, fileOut,extra=""):
    extra = extra + " --colorscheme Tomorrow"

    launchStr = 'openscad -o "' + fileOut + '"' + extra + ' "' + fileIn + '"'
    if ".png" in fileOut:
        launchStr = launchStr + " --render"
    print("            saveToFile launch string: " + launchStr)
    subprocess.run(launchStr)
    x=0



def insert(item,pos=[None,None,None],x=0,y=0,z=0,ex=0,size=[None,None,None],length=0,rot=[None,None,None],rotX=0,rotY=0,rotZ=0,width=0,height=0,depth=100,rad=0,rad2=0,color=colDefault,alpha=1,OOwidth=0,OOheight=0,holes=True,negative=True, name="",m=""):
    return OPSCInsert(item,pos,x,y,z,ex,size,length,rot,rotX,rotY,rotZ,width,height,depth,rad,rad2,color,alpha,OOwidth,OOheight,holes,negative,name,m=m)


def OPSCInsert(item,pos=[None,None,None],x=0,y=0,z=0,ex=0,size=[None,None,None],length=0,rot=[None,None,None],rotX=0,rotY=0,rotZ=0,width=0,height=0,depth=100,rad=0,rad2=0,col=colDefault,alpha=1,OOwidth=0,OOheight=0,holes=True,negative=True, name="",m=""):
    
    """
        color(color,alpha){
            translate([x,y,z]){
                    rotate([rotX,rotY,rotZ]){
    """
    returnValue = ""

    #print(pos)

    if pos[0] != None:
        x=pos[0]
        y=pos[1]
        z=pos[2]
    if rot[0] != None:
        rotX=rot[0]
        rotY=rot[1]
        rotZ=rot[2]
    
    returnValue = color(col)(translate((x,y,z))(
                            rotate((rotX,rotY,rotZ))(
                                OPSCInsertIf(item,pos,x,y,z,ex,size,length,rot,rotX,rotY,rotZ,width,height,depth,rad,rad2,col,alpha,OOwidth,OOheight,holes,negative,name,m=m)
                            )
                        ))
                
    

    return returnValue

def OPSCInsertIf(item,pos=[None,None,None],x=0,y=0,z=0,ex=0,size=[None,None,None],length=0,rot=[None,None,None],rotX=0,rotY=0,rotZ=0,width=0,height=0,depth=100,rad=0,rad2=0,color=colDefault,alpha=1,OOwidth=0,OOheight=0,holes=True,negative=True, name="",m=""):
    returnValue = cube([10,10,10])

    if size[0] != None:
        width=size[0]
        height=size[1]
        depth=size[2]

    #print("    OPSCInsert item:" + str(item) + " at:[" + str(x) + "," + str(y) + "," + str(z) + "] size: [" + str(width) + "," + str(height) + "," + str(depth) + "]")

    if(item=="cube"):
        returnValue =  translate([0,0,-depth/2])(cube([width,height,depth],center=True).set_modifier(m))
    elif(item=="cylinder"):        
        returnValue = translate([0,0,-depth/2])(cylinder(r=rad,h=depth,center=True).set_modifier(m))
    elif(item=="sphere"):        
        returnValue = translate([0,0,-rad])(sphere(r=rad).set_modifier(m))
    elif(item=="plane"):
        if depth == 100:
            returnValue = insert("cube",size=[1000,1000,0.1],color=color).set_modifier(m)            
        else:
            returnValue = insert("cube",size=[1000,1000,depth],color=color).set_modifier(m)                        
    elif(item=="cubeRounded"):
        if(rad == 0):
                            rad = 5
        returnValue =  translate([0,0,-depth])(
                        linear_extrude(height=depth)(                        
                            offset(r=rad)(
                                square((width-rad*2+.01,height-rad*2+.01),center=True).set_modifier(m)
                                )
                            )
        )
    ######  Bearing
    elif("bearing" in item.lower()):
        size = item.replace("bearing","")    
        #m="#"
        if size == "606":
            rad = bearings[size]["OUTSIDE"]
            depth = bearings[size]["DEPTH"]
            bearingFull = insert("cylinder",rad=rad,depth=depth,z=depth/2,m=m)
            rad = bearings[size]["OUTSIDELITTLE"]
            depth = 100
            outsideLittle = insert("cylinder",rad=rad,depth=depth,z=depth/2,m=m)
            returnValue = bearingFull + outsideLittle
        else:
            rad = bearings[size]["OUTSIDE"]
            depth = bearings[size]["DEPTH"]
            bearingFull = insert("cylinder",rad=rad,depth=depth,z=depth/2,m=m)
            rad = bearings[size]["INSIDE"]
            depth = bearings[size]["DEPTH"]
            bearingInside = insert("cylinder",rad=rad,depth=depth,z=depth/2,m=m)
            rad = bearings[size]["OUTSIDELITTLE"]
            depth = 100
            outsideLittle = insert("cylinder",rad=rad,depth=depth,z=depth/2,m=m)
            rad = bearings[size]["INSIDEBIG"]
            depth = 100
            insideBig = insert("cylinder",rad=rad,depth=depth,z=depth/2,m=m)

            outside = difference()(outsideLittle,insideBig)
            inside = difference()(bearingFull,bearingInside)
            returnValue = outside + inside
    ######  Countersunk
    elif(item == "countersunkM1" or item == "csM1" ):
        returnValue = OSPCgetCountersunk(rad=1,m=m)
    elif(item == "countersunkM2" or item == "csM2" ):
        returnValue = OSPCgetCountersunk(rad=2,m=m)
    elif(item == "countersunkM3" or item == "csM3" ):
        returnValue = OSPCgetCountersunk(rad=3,m=m)
    elif(item == "countersunkM4" or item == "csM4" ):
        returnValue = OSPCgetCountersunk(rad=4,m=m)
    elif(item == "countersunkM5" or item == "csM5" ):
        returnValue = OSPCgetCountersunk(rad=5,m=m)
    elif(item == "countersunkM6" or item == "csM6" ):
        returnValue = OSPCgetCountersunk(rad=6,m=m)
    elif(item == "countersunk" or item == "cs"):
        returnValue = OSPCgetCountersunk(rad=rad,m=m)


    ######  Holes    
    elif(item == "holeM1"):
        returnValue = OSPCgetHole(rad=1,depth=depth,m=m)
    elif(item == "holeM2"):
        returnValue = OSPCgetHole(rad=2,depth=depth,m=m)
    elif(item == "holeM3"):
        returnValue = OSPCgetHole(rad=3,depth=depth,m=m)
    elif(item == "holeM4"):
        returnValue = OSPCgetHole(rad=4,depth=depth,m=m)
    elif(item == "holeM5"):
        returnValue = OSPCgetHole(rad=5,depth=depth,m=m)
    elif(item == "holeM6"):
        returnValue = OSPCgetHole(rad=6,depth=depth,m=m)
    elif(item == "holeM7"):
        returnValue = OSPCgetHole(rad=7,depth=depth,m=m)
    elif(item == "holeM8"):
        returnValue = OSPCgetHole(rad=8,depth=depth,m=m)
    elif(item == "hole"):
        returnValue = OSPCgetHoleRad(rad=rad,depth=depth,m=m)

    ######  Nuts
    elif(item == "nutM1"):
        returnValue = OSPCgetNut(rad=1,depth=depth,m=m)
    elif(item == "nutM2"):
        returnValue = OSPCgetNut(rad=2,depth=depth,m=m)
    elif(item == "nutM3"):
        returnValue = OSPCgetNut(rad=3,depth=depth,m=m)
    elif(item == "nutM4"):
        returnValue = OSPCgetNut(rad=4,depth=depth,m=m)
    elif(item == "nutM5"):
        returnValue = OSPCgetNut(rad=5,depth=depth,m=m)
    elif(item == "nutM6"):
        returnValue = OSPCgetNut(rad=6,depth=depth,m=m)
    elif(item == "nut"):
        returnValue = OSPCgetNut(rad=rad,depth=depth,m=m)
    return returnValue

                

def OSPCgetHole(rad,depth=0,m=""):
    if depth == 0:
        return translate([0,0,-250])(cylinder(r=holeM[rad],h=500).set_modifier(m))
    else:    
        return cylinder(r=holeM[rad],h=depth).set_modifier(m)

def OSPCgetHoleRad(rad,m=""):
    return translate([0,0,-250])(cylinder(r=rad,h=500).set_modifier(m))

def OSPCgetNut(rad,depth,m=""):
    depth = nutM[rad][NUTDEPTH] if depth==100 else depth
    returnValue = OPSChexagon(nutM[rad][NUTWIDTH],depth=depth,m=m)
    return returnValue

def OSPCgetCountersunk(rad,m=""):
    depth=countersunkM[rad][DEPTH]
    returnValue = translate([0,0,-depth])(cylinder(h=depth,r2=countersunkM[rad][WIDTH],r1=holeM[rad])).set_modifier(m)
    return returnValue

def OPSChexagon(width,depth,m=""):
    angles = []
    for a in range(0,6):
        angles.append((a*360/6)+30)
    points = []
    for angle in angles:
        x = math.cos((math.pi/180)*angle)*(width/2)
        y = math.sin((math.pi/180)*angle)*(width/2)
        points.append([x,y])

        rv = polygon(points)
        rv = linear_extrude(height=depth)(rv)
        rv = translate([0,0,-depth])(rv)
        rv = rv.set_modifier(m)

    return rv

def OPSChexagonOld(width,depth,m=""):
    cutter = item()
    wid=width*2
    cutter.addPos(insert("cube",pos=[wid/2+width/2,0,0],size=[wid,wid,depth]))
    cutter.addPos(insert("cube",pos=[-wid/2-width/2,0,0],size=[wid,wid,depth]))

    cut = cutter.getPart()
    #print(depth)
    returnValue = difference()(
        translate([0,0,-depth/2])(cube([wid,wid,depth],center=True)),
        cut,
        rotate([0,0,60])(cut),
        rotate([0,0,-60])(cut)
    ).set_modifier(m)

    return returnValue

class item:

    def __init__(self):
        self.posItems=list()
        self.negItems=list()

    def isEmpty(self):        
        testString = scad_render(self.getPart())
        #print("test String length: " + str(len(testString)))
        returnValue = False
        if len(testString) == 270:            
            returnValue = True
        return returnValue

    def addPos(self,part):
        self.posItems.append(part)
    def addNeg(self,part):
        self.negItems.append(part)

    def getPart(self):
        returnValue = difference()(
            union()(self.posItems),
            union()(self.negItems)
        )
        return returnValue

    def getLaser(self,start=0,layers=1,thickness=-3,tileDif=200):
        rv= []

        for x in range(layers):
            rv.append(translate([0,x*tileDif,0])(
                    projection()(
                        intersection()(
                            insert("plane",z=start+x*thickness),
                            self.getPart()
                        )
                    )
            )
            )
        return union()(rv)

    def getSplit(self,start=0,depth=6,tileDif=200):
        rv= []

        rv.append(translate([0,0,0])(
            intersection()(
                insert("cube",size=[100,100,depth],z=start),
                self.getPart()
            )
        )
        )

        rv.append(translate([0,0,depth])(rotate([180,0,0])(translate([0,tileDif,depth])(
            intersection()(
                insert("cube",size=[100,100,depth],z=start-depth),
                self.getPart()
            )
        )
        )
        )
        )        
        return union()(rv)


 
 
************************************************/
